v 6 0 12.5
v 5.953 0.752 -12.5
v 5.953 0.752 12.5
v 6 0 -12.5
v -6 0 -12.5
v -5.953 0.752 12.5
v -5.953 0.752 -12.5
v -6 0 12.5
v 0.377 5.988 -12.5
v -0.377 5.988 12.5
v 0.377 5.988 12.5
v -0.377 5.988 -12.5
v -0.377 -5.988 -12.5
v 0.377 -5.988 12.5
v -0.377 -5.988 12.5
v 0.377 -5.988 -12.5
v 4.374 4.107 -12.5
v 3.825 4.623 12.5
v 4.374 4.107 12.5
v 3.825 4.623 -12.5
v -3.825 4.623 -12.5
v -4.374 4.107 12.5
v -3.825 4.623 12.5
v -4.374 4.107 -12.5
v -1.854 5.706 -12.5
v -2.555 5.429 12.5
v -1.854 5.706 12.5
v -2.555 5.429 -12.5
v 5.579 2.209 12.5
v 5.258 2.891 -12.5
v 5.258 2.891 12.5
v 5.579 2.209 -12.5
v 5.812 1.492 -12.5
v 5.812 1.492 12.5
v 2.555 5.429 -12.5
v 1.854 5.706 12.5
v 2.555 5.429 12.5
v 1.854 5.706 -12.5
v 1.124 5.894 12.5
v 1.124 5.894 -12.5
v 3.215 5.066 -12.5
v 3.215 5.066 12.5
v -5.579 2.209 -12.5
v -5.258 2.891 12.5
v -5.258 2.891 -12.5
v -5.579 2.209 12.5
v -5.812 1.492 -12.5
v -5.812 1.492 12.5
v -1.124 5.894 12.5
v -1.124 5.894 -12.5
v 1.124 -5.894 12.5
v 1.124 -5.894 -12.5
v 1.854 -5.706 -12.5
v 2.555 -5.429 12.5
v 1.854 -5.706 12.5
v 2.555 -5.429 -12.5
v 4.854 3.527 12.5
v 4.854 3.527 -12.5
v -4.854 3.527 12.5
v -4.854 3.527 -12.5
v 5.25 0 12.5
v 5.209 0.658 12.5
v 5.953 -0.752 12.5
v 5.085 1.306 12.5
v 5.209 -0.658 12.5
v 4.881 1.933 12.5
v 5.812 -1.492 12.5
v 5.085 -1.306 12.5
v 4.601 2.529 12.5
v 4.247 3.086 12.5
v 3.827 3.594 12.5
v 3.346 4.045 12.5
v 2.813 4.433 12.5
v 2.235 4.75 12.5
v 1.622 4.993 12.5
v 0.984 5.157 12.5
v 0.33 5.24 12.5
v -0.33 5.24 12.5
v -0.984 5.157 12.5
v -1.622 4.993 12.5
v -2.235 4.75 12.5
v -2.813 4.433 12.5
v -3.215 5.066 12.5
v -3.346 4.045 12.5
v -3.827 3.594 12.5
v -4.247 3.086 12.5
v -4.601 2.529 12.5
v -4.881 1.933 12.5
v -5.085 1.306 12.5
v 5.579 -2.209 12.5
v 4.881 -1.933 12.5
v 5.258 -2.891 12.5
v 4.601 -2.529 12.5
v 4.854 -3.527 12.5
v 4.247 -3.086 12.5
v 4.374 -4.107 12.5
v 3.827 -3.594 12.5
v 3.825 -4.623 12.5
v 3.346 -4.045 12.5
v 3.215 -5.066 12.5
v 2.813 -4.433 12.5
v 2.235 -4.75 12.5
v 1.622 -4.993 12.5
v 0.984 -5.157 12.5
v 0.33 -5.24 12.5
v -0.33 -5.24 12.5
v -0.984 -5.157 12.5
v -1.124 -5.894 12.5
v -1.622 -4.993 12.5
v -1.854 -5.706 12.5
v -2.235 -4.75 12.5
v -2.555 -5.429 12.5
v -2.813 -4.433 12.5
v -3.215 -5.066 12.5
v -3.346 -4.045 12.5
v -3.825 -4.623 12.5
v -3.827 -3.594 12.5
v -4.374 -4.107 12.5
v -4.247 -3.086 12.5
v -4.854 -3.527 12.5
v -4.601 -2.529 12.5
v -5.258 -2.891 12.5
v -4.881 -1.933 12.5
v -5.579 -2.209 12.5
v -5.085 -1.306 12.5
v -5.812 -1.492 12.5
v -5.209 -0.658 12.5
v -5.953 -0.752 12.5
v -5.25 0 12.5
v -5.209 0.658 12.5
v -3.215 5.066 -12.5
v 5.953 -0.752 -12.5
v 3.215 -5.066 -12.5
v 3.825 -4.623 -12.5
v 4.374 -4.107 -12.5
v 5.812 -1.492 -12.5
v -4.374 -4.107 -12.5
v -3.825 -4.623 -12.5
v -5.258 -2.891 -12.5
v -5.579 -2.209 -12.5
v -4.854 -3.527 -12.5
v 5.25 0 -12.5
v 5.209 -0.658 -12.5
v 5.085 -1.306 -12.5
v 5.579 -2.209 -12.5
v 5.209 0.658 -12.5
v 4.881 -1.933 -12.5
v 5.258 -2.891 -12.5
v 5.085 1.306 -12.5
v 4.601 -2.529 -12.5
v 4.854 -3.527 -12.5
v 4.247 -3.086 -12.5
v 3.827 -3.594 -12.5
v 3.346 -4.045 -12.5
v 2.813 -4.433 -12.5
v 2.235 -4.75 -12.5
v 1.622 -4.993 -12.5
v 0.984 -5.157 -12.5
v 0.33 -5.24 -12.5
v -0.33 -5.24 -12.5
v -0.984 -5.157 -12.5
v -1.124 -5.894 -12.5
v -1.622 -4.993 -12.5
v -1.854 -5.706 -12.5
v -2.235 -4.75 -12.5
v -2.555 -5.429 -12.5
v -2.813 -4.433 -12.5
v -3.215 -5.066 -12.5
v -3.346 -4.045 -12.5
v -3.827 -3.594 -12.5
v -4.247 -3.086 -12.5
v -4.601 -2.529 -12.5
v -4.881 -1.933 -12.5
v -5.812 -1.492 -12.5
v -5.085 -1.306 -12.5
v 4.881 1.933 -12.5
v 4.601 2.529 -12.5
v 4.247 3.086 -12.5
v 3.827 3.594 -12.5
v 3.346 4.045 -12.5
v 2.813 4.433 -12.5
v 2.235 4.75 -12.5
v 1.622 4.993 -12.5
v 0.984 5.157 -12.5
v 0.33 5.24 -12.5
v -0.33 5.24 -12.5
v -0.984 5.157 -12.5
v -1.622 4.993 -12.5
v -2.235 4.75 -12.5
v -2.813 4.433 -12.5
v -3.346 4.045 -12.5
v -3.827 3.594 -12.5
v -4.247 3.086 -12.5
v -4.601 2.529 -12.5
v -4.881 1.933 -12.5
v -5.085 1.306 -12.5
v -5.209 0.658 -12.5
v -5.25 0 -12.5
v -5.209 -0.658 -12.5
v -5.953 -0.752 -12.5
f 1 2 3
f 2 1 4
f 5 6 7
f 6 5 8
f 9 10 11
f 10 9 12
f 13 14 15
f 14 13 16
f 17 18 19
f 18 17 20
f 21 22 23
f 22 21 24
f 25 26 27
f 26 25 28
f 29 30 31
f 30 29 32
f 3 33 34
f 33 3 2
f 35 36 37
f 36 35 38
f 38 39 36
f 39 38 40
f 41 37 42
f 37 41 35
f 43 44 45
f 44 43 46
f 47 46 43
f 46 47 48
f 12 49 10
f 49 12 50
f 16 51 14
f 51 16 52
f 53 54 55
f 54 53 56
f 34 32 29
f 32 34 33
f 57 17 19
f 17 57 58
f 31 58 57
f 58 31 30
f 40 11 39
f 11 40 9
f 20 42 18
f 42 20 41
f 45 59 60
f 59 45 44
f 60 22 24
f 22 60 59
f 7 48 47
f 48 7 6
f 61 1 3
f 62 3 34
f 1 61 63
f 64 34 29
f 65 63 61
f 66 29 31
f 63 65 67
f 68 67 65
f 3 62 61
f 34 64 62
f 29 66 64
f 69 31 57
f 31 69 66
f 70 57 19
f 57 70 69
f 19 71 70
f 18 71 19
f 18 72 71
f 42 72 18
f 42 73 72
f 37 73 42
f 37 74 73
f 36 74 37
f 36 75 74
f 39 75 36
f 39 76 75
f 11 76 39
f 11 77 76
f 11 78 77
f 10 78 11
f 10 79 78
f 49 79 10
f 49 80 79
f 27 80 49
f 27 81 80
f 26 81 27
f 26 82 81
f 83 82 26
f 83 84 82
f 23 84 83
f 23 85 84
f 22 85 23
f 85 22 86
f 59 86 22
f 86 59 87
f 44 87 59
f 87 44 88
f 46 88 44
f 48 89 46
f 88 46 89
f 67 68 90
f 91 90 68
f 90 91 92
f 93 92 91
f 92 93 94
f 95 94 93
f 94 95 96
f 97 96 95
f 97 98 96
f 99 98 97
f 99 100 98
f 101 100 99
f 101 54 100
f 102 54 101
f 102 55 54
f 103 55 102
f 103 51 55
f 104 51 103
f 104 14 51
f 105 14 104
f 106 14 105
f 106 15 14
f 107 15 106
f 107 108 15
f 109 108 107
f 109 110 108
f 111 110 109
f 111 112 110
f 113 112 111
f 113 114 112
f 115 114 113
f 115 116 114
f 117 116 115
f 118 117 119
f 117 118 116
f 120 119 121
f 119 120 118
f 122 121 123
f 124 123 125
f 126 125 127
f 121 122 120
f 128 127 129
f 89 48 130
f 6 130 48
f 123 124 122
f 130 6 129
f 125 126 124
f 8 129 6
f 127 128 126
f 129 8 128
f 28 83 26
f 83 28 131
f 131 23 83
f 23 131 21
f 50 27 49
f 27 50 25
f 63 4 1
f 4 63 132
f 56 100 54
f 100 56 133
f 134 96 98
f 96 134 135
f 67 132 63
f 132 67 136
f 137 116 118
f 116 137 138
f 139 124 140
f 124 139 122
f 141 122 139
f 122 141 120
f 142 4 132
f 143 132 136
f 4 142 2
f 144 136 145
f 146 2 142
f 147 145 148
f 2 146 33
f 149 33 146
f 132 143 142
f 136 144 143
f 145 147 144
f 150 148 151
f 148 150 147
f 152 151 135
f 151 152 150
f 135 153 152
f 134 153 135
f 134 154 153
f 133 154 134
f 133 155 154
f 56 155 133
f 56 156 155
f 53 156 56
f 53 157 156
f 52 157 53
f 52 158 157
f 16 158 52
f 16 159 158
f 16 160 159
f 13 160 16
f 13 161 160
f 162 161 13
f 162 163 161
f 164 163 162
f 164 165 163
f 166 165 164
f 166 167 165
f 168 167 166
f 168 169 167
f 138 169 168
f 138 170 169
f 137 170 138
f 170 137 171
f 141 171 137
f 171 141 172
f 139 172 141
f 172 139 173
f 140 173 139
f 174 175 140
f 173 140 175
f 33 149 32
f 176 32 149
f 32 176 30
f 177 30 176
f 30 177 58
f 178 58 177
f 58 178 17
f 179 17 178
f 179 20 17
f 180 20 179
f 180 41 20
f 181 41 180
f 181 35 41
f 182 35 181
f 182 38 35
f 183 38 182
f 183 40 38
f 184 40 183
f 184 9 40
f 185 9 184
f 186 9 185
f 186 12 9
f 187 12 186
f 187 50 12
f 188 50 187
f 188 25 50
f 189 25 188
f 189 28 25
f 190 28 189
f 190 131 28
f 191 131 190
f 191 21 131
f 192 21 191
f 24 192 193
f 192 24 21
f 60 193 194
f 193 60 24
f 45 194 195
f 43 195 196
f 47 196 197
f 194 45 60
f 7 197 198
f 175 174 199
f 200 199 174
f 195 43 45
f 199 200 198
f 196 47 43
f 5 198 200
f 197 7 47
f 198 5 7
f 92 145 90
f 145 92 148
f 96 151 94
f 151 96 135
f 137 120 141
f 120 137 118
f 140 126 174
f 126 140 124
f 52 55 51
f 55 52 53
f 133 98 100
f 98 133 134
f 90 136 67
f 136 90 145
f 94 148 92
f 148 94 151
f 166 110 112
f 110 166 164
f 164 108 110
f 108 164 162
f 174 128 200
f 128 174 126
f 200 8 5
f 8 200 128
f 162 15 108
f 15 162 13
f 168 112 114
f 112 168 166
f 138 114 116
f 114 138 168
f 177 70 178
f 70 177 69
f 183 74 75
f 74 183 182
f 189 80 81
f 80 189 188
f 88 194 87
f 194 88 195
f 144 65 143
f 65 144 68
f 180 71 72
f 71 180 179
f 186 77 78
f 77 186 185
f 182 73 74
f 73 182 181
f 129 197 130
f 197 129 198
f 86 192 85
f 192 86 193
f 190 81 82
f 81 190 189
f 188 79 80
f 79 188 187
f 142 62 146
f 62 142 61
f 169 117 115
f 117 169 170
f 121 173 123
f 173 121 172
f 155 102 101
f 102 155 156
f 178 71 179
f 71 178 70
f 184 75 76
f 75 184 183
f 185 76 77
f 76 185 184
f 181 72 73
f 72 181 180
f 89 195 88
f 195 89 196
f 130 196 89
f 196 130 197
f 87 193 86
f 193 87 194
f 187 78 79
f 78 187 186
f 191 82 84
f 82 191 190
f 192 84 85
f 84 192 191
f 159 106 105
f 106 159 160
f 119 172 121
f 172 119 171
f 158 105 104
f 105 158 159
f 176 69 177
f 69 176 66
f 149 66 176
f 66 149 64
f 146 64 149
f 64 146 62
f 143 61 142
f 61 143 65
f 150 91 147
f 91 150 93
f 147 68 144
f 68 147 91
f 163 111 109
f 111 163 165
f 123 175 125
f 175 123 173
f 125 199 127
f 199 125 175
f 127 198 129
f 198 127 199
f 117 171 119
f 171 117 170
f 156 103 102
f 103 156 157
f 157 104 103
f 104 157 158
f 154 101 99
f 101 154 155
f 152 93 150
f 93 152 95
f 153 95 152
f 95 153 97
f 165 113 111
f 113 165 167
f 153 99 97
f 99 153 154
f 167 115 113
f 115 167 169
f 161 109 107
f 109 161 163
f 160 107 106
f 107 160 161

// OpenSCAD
$fn = 50;


difference() {
	union() {
		translate(v = [0, 0, -12.5000000000]) {
			cylinder(h = 25, r = 6.0000000000);
		}
	}
	union() {
		translate(v = [0, 0, -100.0000000000]) {
			cylinder(h = 200, r = 5.2500000000);
		}
	}
}
